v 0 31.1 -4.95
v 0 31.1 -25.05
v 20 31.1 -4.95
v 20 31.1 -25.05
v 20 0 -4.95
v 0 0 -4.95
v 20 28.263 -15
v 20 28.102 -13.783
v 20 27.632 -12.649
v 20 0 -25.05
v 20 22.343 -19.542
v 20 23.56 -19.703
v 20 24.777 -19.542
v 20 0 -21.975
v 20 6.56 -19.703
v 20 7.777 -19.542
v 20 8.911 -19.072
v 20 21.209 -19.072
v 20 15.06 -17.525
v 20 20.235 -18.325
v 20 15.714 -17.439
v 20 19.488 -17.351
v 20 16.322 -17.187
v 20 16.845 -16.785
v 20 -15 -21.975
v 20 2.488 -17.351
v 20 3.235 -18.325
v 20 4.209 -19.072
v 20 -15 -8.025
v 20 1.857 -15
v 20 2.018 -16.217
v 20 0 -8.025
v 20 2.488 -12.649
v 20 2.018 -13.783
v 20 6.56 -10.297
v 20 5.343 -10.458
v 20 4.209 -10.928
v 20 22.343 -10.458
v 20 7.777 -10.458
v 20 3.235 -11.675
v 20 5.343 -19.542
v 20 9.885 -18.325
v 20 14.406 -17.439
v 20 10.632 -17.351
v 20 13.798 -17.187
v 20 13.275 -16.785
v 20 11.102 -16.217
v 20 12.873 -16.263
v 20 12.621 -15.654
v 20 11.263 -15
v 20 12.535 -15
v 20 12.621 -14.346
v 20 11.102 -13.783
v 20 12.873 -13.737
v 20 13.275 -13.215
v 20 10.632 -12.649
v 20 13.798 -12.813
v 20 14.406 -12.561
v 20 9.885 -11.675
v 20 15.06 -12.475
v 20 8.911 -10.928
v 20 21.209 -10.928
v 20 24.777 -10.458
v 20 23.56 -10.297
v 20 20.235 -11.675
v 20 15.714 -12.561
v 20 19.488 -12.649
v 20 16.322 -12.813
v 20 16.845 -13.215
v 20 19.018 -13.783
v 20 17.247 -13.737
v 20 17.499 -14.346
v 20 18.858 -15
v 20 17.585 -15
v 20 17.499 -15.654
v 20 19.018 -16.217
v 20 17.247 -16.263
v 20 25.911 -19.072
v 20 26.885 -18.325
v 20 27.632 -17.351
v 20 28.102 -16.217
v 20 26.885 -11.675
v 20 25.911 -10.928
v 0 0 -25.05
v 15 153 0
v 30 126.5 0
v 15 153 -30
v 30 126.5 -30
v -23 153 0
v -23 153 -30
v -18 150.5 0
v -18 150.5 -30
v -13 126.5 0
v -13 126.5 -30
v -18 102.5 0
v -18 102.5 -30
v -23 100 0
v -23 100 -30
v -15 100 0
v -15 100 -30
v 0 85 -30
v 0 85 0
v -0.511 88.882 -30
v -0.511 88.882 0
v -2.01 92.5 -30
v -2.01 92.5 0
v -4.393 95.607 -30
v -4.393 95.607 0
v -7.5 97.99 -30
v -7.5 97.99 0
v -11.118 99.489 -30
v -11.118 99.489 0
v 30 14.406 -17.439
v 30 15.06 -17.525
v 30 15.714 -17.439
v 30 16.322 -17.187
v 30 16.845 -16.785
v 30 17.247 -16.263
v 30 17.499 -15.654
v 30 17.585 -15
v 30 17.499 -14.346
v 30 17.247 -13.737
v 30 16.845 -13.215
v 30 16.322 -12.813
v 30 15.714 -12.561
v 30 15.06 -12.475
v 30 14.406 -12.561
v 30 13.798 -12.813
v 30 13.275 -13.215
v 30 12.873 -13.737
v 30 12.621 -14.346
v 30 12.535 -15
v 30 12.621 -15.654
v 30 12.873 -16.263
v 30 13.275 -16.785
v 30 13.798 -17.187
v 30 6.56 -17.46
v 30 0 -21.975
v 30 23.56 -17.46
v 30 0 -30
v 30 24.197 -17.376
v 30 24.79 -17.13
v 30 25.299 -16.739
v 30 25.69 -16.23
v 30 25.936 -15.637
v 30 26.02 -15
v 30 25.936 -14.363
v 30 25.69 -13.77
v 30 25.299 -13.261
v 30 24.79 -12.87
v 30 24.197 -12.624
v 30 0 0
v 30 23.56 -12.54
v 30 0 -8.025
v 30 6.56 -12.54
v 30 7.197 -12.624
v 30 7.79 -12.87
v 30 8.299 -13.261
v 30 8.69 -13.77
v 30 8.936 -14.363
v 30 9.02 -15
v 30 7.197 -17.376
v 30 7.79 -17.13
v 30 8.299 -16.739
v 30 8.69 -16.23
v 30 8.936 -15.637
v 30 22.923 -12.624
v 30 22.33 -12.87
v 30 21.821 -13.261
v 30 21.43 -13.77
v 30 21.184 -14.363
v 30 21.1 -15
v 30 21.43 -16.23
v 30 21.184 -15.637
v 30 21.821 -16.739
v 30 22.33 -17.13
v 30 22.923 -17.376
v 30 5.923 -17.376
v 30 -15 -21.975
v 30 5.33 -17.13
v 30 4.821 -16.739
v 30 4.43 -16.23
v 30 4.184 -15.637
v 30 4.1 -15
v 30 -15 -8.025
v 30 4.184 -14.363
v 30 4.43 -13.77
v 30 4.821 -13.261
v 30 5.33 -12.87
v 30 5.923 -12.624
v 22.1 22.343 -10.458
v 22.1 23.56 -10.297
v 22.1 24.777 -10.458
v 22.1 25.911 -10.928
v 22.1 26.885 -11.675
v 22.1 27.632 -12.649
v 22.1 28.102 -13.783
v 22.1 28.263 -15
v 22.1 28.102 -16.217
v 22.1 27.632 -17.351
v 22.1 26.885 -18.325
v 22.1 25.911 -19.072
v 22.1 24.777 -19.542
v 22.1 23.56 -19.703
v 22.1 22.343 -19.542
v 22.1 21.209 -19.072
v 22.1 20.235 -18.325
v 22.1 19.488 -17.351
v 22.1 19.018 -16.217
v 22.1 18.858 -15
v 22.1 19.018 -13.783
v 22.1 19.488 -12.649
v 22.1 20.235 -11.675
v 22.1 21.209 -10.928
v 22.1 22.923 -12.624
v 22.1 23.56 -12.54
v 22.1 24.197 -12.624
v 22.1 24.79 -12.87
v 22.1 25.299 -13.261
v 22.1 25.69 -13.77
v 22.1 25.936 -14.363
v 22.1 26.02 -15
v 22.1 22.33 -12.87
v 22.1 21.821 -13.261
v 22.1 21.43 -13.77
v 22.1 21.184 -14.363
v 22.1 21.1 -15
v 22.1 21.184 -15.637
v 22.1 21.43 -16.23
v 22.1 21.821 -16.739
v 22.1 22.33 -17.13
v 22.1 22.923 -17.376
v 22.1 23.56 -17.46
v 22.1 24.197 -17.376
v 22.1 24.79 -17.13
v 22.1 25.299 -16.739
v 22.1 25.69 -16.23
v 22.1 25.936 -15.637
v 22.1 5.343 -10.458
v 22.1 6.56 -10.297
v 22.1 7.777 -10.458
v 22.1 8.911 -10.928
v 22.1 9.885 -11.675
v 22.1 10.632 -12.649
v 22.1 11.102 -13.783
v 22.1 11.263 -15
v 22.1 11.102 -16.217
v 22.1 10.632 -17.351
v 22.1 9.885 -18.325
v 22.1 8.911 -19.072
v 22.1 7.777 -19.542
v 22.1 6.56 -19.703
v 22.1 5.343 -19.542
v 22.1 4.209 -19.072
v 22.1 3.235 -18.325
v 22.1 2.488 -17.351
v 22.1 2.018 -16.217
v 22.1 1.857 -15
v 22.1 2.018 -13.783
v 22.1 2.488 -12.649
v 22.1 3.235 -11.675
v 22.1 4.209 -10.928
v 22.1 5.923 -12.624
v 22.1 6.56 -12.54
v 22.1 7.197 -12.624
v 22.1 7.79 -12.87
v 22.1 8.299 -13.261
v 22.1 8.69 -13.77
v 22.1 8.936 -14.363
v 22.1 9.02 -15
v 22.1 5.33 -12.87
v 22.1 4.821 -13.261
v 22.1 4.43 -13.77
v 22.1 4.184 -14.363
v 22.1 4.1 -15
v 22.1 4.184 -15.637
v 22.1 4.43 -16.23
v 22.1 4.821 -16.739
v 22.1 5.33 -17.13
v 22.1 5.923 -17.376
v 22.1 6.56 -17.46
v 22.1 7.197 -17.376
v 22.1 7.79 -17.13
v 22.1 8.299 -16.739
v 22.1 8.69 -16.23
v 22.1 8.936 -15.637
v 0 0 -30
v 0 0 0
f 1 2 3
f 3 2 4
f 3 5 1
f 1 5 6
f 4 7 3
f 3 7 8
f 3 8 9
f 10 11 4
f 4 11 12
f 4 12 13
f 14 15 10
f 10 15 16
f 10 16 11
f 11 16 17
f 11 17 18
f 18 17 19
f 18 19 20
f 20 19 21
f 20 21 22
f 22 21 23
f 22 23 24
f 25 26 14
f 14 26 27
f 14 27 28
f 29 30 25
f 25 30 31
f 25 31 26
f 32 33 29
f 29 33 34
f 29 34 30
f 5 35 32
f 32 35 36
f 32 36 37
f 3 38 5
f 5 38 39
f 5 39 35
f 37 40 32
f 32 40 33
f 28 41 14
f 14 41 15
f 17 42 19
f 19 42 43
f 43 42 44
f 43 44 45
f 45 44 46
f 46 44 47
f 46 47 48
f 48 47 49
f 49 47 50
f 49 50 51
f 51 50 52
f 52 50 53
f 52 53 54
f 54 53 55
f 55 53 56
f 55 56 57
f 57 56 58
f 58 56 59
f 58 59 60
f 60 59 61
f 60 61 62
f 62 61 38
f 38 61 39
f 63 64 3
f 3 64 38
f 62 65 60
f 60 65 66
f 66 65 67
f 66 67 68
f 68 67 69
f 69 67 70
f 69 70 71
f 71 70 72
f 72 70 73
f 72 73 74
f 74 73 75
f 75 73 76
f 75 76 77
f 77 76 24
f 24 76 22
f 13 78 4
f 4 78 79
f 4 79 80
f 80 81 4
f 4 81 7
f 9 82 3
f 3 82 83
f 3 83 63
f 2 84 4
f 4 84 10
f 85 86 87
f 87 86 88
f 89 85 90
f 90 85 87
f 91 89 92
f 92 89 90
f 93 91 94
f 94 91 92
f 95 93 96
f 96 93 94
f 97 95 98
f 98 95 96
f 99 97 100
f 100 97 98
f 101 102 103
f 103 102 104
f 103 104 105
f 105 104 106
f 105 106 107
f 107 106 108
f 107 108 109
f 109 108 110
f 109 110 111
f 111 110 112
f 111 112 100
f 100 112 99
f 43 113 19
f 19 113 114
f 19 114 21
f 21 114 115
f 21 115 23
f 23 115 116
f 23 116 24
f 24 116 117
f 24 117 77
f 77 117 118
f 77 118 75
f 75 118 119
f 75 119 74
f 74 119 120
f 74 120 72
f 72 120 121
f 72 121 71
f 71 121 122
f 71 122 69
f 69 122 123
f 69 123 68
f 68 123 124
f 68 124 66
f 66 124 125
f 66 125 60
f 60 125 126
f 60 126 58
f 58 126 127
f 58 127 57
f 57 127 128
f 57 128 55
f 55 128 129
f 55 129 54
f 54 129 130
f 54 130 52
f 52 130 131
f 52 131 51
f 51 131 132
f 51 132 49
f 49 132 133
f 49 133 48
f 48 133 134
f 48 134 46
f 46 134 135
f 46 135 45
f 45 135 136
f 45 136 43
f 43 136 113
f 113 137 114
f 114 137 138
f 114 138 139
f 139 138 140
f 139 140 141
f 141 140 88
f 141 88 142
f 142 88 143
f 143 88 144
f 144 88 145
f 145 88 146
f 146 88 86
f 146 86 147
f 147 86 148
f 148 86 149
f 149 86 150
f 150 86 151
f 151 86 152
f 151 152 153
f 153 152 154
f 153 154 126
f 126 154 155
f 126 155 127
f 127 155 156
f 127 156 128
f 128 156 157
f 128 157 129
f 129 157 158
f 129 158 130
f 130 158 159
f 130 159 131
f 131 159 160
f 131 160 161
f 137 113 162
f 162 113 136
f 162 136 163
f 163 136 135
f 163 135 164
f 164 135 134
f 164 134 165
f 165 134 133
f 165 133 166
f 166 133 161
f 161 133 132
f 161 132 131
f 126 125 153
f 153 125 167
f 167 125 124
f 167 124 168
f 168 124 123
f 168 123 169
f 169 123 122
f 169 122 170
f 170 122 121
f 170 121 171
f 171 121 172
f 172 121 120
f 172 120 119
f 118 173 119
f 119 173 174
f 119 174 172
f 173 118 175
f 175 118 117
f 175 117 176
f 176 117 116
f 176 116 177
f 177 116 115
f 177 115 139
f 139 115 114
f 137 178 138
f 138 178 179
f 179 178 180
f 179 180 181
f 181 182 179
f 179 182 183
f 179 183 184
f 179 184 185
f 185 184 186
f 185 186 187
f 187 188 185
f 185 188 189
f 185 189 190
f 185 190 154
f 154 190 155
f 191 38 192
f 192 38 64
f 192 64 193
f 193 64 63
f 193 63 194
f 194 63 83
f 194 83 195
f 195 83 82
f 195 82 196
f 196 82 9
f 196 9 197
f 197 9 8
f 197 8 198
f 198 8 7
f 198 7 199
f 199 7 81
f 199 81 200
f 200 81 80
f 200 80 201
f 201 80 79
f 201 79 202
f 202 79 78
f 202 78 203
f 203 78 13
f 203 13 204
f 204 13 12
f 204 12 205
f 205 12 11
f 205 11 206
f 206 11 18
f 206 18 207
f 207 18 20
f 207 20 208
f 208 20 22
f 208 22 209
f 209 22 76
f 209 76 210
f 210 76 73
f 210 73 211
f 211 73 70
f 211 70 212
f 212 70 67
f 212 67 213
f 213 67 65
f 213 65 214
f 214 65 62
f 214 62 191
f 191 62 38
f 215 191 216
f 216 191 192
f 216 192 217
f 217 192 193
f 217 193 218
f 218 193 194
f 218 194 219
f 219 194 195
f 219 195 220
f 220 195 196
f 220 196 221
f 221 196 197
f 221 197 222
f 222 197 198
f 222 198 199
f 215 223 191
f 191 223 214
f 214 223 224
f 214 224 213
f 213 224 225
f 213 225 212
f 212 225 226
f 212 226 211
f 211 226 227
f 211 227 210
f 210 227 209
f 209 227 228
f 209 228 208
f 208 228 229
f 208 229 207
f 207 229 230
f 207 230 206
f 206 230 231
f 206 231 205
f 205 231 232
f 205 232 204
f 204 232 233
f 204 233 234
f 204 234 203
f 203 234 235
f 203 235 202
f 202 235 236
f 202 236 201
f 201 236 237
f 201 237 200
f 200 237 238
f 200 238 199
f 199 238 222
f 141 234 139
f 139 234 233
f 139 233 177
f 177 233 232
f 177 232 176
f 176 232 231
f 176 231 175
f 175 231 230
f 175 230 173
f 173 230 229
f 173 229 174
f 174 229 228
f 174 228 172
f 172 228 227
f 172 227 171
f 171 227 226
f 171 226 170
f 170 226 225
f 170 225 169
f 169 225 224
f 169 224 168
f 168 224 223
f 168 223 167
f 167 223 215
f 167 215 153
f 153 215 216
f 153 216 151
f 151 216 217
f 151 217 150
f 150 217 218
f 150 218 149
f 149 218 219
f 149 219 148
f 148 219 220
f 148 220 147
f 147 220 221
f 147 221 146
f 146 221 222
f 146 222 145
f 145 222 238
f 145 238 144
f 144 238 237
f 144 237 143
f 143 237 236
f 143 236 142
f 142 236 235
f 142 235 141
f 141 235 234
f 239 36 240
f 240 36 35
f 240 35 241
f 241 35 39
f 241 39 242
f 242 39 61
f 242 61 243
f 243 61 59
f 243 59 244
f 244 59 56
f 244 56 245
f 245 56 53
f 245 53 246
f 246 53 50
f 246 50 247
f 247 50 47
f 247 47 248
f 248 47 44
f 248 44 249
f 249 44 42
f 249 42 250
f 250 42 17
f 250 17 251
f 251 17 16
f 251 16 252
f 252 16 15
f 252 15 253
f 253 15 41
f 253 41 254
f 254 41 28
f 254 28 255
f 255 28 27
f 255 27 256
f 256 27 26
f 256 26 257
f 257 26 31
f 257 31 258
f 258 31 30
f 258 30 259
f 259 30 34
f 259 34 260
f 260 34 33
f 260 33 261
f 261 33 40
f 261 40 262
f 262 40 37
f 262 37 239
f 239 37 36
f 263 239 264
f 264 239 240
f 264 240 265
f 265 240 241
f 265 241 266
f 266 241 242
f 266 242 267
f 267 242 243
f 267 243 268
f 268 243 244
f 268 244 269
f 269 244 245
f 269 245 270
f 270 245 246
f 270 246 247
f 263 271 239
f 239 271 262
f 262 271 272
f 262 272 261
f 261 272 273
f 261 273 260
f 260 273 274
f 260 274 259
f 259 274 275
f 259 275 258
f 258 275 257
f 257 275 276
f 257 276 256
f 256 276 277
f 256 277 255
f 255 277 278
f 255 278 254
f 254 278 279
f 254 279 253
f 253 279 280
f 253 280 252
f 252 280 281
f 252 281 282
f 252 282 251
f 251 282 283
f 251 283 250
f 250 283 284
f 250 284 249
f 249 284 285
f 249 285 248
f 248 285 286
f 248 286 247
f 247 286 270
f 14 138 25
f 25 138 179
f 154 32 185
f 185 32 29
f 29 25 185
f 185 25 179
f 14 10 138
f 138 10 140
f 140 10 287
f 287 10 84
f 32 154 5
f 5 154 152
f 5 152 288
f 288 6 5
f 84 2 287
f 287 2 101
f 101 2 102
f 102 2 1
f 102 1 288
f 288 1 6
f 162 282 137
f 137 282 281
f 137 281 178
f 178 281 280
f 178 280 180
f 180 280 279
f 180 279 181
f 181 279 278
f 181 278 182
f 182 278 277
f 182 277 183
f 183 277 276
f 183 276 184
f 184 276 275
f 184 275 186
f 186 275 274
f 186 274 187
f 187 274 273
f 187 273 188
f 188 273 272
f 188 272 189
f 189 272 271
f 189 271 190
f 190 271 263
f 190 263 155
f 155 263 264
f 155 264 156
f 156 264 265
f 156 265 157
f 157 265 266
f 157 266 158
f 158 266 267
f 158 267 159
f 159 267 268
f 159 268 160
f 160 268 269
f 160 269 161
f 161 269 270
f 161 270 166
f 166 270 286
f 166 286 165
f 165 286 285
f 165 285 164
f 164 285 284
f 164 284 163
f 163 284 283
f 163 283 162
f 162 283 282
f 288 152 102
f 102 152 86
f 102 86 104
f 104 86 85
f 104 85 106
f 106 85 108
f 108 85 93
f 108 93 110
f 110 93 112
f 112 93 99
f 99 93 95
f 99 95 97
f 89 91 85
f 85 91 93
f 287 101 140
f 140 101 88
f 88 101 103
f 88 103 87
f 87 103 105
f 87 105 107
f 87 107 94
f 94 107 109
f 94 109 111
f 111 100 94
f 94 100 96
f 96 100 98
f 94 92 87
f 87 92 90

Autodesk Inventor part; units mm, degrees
ref_plane "YZ Plane" through (0, 0, 0) normal (1, 0, 0) x (0, 1, 0)
ref_plane "XZ Plane" through (0, 0, 0) normal (0, 1, 0) x (-1, 0, 0)
ref_plane "XY Plane" through (0, 0, 0) normal (0, 0, 1) x (1, 0, 0)
sketch "Sketch1" plane through (0, 0, 0) normal (0, 0, 1) x (1, 0, 0)
  line L0 (0, 0) -> (25, 0)
  line L1 (25, 0) -> (25, 40)
  line L2 (25, 40) -> (0, 40)
  line L3 (0, 40) -> (0, 0)
  dimension "d1" = 25
  dimension "d2" = 40
  dimension "d3" = 25
extrude "Extrusion1" add sketch "Sketch1" against normal blind 30
sketch "Sketch2" plane through (25, 0, 0) normal (1, 0, 0) x (0, 0, -1)
  line L0 (0, 0) -> (30, 0) projected
  circle A0 centre (15, 6.56) radius 2.46
extrude "Extrusion2" cut sketch "Sketch2" against normal blind 30
sketch "Sketch3" plane through (0, 0, 0) normal (-1, 0, 0) x (0, 0, 1)
  line L0 (0, 0) -> (-30, 0) projected
  line L1 (-25.05, 0) -> (-4.95, 0)
  line L2 (-4.95, 0) -> (-4.95, 33.12)
  line L3 (-4.95, 33.12) -> (-25.05, 33.12)
  line L4 (-25.05, 33.12) -> (-25.05, 0)
  dimension "d11" = 20.1
extrude "Extrusion3" cut sketch "Sketch3" against normal blind 20
sketch "Sketch4" plane through (0, 0, 0) normal (0, -1, 0) x (1, 0, 0)
  line L0 (20, -4.95) -> (20, -25.05) projected
  line L1 (20, -15) -> (25, -15)
  line L2 (25, 0) -> (25, -30) projected
  line L3 (20, -8.025) -> (25, -8.025)
  line L4 (25, -8.025) -> (25, -21.975)
  line L5 (25, -21.975) -> (20, -21.975)
  line L6 (20, -21.975) -> (20, -8.025)
  line L7 (20, -8.025) -> (25, -21.975) construction
  line L8 (25, -8.025) -> (20, -21.975) construction
  line L9 (25, -12.54) -> (25, -17.46) projected
  point P0 (0, 0)
  point P1 (22.5, -15)
  dimension "d14" = 13.95
extrude "Extrusion4" add sketch "Sketch4" along normal blind 15
sketch "Sketch5" plane through (20, 0, 0) normal (-1, 0, 0) x (0, 0, 1)
  circle A0 centre (-15, 6.56) radius 2.46 projected
  circle A1 centre (-15, 6.56) radius 4.7025
  circle A2 centre (-15, 6.56) radius 2.46 projected
  circle A3 centre (-15, 6.56) radius 2.46
  point P0 (0, 0)
  dimension "d17" = 9.405
extrude "Extrusion5" cut sketch "Sketch5" against normal blind 2.1
sketch "Sketch6" plane through (25, 0, 0) normal (1, 0, 0) x (0, 0, -1)
  circle A0 centre (15, 6.56) radius 4.7025 projected
  line L0 (15, 6.56) -> (15, 23.56)
  circle A1 centre (15, 23.56) radius 2.46
  point P0 (0, 0)
  dimension "d20" = 17
  dimension "d21" = 4.92
extrude "Extrusion6" cut sketch "Sketch6" against normal blind 10 contours A1
sketch "Sketch7" plane through (20, 0, 0) normal (-1, 0, 0) x (0, 0, 1)
  circle A0 centre (-15, 23.56) radius 2.46 projected
  circle A1 centre (-15, 23.56) radius 4.7025
  point P0 (0, 0)
  dimension "d24" = 9.405
extrude "Extrusion7" cut sketch "Sketch7" against normal blind 2.1
sketch "Sketch9" plane through (25, 0, 0) normal (1, 0, 0) x (0, 0, -1)
  circle A0 centre (15, 6.56) radius 2.46 projected
  circle A1 centre (15, 6.56) radius 2.46
  circle A2 centre (15, 23.56) radius 2.46 projected
  circle A3 centre (15, 23.56) radius 2.46
  line L0 (30, 40) -> (30, 0) projected
  line L1 (30, 0) -> (30, 40)
  line L2 (30, 40) -> (0, 40)
  line L3 (0, 40) -> (0, 0)
  line L4 (0, 0) -> (8.025, 0) projected
  line L5 (21.975, 0) -> (21.975, -15)
  line L6 (21.975, -15) -> (8.025, -15)
  line L7 (8.025, -15) -> (8.025, 0)
  line L8 (0, 0) -> (8.025, 0)
  line L9 (21.975, 0) -> (30, 0)
extrude "Extrusion8" add sketch "Sketch9" along normal blind 5
sketch "Sketch10" plane through (0, 40, 0) normal (0, 1, 0) x (1, 0, 0)
  line L0 (0, 30) -> (30, 30) projected
  line L1 (30, 0) -> (0, 0) projected
  line L2 (0, 30) -> (30, 30)
  line L3 (30, 30) -> (30, 0)
  line L4 (30, 0) -> (0, 0)
  line L5 (0, 0) -> (0, 30)
extrude "Extrusion9" add sketch "Sketch10" along normal blind 30
sketch "Sketch12" plane through (30, 0, 0) normal (1, 0, 0) x (0, 0, -1)
  circle A0 centre (15, 6.56) radius 2.46 projected
  line L0 (15, 6.56) -> (15, 15.06)
  circle A1 centre (15, 15.06) radius 2.525
  point P0 (0, 0)
  dimension "d31" = 8.5
  dimension "d33" = 5.05
extrude "Extrusion10" cut sketch "Sketch12" against normal blind 30 contours A1
sketch "Sketch14" plane through (0, 0, 0) normal (0, 0, 1) x (1, 0, 0)
  line L0 (30, 70) -> (0, 70) projected
  line L1 (0, 70) -> (0, 85)
  line L2 (-15, 100) -> (-23, 100)
  line L3 (30, 0) -> (30, 70) projected
  line L4 (30, 122.5) -> (30, 70)
  arc A0 (0, 85) -> (-15, 100) centre (-15, 85) ccw
  line L5 (30, 105) -> (30, 100)
  line L6 (-23, 153) -> (15, 153)
  line L7 (-18, 150.5) -> (-23, 153)
  line L8 (-18, 102.5) -> (-23, 100)
  line L9 (-18, 102.5) -> (-13, 126.5)
  line L10 (-13, 126.5) -> (-18, 150.5)
  line L11 (30, 126.5) -> (15, 153)
  line L12 (30, 122.5) -> (30, 126.5)
  point P0 (0, 0)
  point P1 (0, 100)
  dimension "d47" = 30
  dimension "d54" = 15
extrude "Extrusion12" add sketch "Sketch14" against normal blind 30
sketch "Sketch15" plane through (0, 0, -25.05) normal (-1, 0, 0) x (0, 0, 1)
  line L0 (0, 33.12) -> (20.1, 33.12) projected
  line L1 (20.1, 33.12) -> (20.1, 0) projected
  line L2 (0, 33.12) -> (20.1, 33.12)
  line L3 (20.1, 33.12) -> (20.1, 31.1)
  line L4 (20.1, 31.1) -> (0, 31.1)
  line L5 (0, 31.1) -> (0, 33.12)
  point P0 (25.05, 0)
  dimension "d57" = 2.02
extrude "Extrusion13" add sketch "Sketch15" against normal blind 20
properties part number "rec_a_48mm_x_30mm"
